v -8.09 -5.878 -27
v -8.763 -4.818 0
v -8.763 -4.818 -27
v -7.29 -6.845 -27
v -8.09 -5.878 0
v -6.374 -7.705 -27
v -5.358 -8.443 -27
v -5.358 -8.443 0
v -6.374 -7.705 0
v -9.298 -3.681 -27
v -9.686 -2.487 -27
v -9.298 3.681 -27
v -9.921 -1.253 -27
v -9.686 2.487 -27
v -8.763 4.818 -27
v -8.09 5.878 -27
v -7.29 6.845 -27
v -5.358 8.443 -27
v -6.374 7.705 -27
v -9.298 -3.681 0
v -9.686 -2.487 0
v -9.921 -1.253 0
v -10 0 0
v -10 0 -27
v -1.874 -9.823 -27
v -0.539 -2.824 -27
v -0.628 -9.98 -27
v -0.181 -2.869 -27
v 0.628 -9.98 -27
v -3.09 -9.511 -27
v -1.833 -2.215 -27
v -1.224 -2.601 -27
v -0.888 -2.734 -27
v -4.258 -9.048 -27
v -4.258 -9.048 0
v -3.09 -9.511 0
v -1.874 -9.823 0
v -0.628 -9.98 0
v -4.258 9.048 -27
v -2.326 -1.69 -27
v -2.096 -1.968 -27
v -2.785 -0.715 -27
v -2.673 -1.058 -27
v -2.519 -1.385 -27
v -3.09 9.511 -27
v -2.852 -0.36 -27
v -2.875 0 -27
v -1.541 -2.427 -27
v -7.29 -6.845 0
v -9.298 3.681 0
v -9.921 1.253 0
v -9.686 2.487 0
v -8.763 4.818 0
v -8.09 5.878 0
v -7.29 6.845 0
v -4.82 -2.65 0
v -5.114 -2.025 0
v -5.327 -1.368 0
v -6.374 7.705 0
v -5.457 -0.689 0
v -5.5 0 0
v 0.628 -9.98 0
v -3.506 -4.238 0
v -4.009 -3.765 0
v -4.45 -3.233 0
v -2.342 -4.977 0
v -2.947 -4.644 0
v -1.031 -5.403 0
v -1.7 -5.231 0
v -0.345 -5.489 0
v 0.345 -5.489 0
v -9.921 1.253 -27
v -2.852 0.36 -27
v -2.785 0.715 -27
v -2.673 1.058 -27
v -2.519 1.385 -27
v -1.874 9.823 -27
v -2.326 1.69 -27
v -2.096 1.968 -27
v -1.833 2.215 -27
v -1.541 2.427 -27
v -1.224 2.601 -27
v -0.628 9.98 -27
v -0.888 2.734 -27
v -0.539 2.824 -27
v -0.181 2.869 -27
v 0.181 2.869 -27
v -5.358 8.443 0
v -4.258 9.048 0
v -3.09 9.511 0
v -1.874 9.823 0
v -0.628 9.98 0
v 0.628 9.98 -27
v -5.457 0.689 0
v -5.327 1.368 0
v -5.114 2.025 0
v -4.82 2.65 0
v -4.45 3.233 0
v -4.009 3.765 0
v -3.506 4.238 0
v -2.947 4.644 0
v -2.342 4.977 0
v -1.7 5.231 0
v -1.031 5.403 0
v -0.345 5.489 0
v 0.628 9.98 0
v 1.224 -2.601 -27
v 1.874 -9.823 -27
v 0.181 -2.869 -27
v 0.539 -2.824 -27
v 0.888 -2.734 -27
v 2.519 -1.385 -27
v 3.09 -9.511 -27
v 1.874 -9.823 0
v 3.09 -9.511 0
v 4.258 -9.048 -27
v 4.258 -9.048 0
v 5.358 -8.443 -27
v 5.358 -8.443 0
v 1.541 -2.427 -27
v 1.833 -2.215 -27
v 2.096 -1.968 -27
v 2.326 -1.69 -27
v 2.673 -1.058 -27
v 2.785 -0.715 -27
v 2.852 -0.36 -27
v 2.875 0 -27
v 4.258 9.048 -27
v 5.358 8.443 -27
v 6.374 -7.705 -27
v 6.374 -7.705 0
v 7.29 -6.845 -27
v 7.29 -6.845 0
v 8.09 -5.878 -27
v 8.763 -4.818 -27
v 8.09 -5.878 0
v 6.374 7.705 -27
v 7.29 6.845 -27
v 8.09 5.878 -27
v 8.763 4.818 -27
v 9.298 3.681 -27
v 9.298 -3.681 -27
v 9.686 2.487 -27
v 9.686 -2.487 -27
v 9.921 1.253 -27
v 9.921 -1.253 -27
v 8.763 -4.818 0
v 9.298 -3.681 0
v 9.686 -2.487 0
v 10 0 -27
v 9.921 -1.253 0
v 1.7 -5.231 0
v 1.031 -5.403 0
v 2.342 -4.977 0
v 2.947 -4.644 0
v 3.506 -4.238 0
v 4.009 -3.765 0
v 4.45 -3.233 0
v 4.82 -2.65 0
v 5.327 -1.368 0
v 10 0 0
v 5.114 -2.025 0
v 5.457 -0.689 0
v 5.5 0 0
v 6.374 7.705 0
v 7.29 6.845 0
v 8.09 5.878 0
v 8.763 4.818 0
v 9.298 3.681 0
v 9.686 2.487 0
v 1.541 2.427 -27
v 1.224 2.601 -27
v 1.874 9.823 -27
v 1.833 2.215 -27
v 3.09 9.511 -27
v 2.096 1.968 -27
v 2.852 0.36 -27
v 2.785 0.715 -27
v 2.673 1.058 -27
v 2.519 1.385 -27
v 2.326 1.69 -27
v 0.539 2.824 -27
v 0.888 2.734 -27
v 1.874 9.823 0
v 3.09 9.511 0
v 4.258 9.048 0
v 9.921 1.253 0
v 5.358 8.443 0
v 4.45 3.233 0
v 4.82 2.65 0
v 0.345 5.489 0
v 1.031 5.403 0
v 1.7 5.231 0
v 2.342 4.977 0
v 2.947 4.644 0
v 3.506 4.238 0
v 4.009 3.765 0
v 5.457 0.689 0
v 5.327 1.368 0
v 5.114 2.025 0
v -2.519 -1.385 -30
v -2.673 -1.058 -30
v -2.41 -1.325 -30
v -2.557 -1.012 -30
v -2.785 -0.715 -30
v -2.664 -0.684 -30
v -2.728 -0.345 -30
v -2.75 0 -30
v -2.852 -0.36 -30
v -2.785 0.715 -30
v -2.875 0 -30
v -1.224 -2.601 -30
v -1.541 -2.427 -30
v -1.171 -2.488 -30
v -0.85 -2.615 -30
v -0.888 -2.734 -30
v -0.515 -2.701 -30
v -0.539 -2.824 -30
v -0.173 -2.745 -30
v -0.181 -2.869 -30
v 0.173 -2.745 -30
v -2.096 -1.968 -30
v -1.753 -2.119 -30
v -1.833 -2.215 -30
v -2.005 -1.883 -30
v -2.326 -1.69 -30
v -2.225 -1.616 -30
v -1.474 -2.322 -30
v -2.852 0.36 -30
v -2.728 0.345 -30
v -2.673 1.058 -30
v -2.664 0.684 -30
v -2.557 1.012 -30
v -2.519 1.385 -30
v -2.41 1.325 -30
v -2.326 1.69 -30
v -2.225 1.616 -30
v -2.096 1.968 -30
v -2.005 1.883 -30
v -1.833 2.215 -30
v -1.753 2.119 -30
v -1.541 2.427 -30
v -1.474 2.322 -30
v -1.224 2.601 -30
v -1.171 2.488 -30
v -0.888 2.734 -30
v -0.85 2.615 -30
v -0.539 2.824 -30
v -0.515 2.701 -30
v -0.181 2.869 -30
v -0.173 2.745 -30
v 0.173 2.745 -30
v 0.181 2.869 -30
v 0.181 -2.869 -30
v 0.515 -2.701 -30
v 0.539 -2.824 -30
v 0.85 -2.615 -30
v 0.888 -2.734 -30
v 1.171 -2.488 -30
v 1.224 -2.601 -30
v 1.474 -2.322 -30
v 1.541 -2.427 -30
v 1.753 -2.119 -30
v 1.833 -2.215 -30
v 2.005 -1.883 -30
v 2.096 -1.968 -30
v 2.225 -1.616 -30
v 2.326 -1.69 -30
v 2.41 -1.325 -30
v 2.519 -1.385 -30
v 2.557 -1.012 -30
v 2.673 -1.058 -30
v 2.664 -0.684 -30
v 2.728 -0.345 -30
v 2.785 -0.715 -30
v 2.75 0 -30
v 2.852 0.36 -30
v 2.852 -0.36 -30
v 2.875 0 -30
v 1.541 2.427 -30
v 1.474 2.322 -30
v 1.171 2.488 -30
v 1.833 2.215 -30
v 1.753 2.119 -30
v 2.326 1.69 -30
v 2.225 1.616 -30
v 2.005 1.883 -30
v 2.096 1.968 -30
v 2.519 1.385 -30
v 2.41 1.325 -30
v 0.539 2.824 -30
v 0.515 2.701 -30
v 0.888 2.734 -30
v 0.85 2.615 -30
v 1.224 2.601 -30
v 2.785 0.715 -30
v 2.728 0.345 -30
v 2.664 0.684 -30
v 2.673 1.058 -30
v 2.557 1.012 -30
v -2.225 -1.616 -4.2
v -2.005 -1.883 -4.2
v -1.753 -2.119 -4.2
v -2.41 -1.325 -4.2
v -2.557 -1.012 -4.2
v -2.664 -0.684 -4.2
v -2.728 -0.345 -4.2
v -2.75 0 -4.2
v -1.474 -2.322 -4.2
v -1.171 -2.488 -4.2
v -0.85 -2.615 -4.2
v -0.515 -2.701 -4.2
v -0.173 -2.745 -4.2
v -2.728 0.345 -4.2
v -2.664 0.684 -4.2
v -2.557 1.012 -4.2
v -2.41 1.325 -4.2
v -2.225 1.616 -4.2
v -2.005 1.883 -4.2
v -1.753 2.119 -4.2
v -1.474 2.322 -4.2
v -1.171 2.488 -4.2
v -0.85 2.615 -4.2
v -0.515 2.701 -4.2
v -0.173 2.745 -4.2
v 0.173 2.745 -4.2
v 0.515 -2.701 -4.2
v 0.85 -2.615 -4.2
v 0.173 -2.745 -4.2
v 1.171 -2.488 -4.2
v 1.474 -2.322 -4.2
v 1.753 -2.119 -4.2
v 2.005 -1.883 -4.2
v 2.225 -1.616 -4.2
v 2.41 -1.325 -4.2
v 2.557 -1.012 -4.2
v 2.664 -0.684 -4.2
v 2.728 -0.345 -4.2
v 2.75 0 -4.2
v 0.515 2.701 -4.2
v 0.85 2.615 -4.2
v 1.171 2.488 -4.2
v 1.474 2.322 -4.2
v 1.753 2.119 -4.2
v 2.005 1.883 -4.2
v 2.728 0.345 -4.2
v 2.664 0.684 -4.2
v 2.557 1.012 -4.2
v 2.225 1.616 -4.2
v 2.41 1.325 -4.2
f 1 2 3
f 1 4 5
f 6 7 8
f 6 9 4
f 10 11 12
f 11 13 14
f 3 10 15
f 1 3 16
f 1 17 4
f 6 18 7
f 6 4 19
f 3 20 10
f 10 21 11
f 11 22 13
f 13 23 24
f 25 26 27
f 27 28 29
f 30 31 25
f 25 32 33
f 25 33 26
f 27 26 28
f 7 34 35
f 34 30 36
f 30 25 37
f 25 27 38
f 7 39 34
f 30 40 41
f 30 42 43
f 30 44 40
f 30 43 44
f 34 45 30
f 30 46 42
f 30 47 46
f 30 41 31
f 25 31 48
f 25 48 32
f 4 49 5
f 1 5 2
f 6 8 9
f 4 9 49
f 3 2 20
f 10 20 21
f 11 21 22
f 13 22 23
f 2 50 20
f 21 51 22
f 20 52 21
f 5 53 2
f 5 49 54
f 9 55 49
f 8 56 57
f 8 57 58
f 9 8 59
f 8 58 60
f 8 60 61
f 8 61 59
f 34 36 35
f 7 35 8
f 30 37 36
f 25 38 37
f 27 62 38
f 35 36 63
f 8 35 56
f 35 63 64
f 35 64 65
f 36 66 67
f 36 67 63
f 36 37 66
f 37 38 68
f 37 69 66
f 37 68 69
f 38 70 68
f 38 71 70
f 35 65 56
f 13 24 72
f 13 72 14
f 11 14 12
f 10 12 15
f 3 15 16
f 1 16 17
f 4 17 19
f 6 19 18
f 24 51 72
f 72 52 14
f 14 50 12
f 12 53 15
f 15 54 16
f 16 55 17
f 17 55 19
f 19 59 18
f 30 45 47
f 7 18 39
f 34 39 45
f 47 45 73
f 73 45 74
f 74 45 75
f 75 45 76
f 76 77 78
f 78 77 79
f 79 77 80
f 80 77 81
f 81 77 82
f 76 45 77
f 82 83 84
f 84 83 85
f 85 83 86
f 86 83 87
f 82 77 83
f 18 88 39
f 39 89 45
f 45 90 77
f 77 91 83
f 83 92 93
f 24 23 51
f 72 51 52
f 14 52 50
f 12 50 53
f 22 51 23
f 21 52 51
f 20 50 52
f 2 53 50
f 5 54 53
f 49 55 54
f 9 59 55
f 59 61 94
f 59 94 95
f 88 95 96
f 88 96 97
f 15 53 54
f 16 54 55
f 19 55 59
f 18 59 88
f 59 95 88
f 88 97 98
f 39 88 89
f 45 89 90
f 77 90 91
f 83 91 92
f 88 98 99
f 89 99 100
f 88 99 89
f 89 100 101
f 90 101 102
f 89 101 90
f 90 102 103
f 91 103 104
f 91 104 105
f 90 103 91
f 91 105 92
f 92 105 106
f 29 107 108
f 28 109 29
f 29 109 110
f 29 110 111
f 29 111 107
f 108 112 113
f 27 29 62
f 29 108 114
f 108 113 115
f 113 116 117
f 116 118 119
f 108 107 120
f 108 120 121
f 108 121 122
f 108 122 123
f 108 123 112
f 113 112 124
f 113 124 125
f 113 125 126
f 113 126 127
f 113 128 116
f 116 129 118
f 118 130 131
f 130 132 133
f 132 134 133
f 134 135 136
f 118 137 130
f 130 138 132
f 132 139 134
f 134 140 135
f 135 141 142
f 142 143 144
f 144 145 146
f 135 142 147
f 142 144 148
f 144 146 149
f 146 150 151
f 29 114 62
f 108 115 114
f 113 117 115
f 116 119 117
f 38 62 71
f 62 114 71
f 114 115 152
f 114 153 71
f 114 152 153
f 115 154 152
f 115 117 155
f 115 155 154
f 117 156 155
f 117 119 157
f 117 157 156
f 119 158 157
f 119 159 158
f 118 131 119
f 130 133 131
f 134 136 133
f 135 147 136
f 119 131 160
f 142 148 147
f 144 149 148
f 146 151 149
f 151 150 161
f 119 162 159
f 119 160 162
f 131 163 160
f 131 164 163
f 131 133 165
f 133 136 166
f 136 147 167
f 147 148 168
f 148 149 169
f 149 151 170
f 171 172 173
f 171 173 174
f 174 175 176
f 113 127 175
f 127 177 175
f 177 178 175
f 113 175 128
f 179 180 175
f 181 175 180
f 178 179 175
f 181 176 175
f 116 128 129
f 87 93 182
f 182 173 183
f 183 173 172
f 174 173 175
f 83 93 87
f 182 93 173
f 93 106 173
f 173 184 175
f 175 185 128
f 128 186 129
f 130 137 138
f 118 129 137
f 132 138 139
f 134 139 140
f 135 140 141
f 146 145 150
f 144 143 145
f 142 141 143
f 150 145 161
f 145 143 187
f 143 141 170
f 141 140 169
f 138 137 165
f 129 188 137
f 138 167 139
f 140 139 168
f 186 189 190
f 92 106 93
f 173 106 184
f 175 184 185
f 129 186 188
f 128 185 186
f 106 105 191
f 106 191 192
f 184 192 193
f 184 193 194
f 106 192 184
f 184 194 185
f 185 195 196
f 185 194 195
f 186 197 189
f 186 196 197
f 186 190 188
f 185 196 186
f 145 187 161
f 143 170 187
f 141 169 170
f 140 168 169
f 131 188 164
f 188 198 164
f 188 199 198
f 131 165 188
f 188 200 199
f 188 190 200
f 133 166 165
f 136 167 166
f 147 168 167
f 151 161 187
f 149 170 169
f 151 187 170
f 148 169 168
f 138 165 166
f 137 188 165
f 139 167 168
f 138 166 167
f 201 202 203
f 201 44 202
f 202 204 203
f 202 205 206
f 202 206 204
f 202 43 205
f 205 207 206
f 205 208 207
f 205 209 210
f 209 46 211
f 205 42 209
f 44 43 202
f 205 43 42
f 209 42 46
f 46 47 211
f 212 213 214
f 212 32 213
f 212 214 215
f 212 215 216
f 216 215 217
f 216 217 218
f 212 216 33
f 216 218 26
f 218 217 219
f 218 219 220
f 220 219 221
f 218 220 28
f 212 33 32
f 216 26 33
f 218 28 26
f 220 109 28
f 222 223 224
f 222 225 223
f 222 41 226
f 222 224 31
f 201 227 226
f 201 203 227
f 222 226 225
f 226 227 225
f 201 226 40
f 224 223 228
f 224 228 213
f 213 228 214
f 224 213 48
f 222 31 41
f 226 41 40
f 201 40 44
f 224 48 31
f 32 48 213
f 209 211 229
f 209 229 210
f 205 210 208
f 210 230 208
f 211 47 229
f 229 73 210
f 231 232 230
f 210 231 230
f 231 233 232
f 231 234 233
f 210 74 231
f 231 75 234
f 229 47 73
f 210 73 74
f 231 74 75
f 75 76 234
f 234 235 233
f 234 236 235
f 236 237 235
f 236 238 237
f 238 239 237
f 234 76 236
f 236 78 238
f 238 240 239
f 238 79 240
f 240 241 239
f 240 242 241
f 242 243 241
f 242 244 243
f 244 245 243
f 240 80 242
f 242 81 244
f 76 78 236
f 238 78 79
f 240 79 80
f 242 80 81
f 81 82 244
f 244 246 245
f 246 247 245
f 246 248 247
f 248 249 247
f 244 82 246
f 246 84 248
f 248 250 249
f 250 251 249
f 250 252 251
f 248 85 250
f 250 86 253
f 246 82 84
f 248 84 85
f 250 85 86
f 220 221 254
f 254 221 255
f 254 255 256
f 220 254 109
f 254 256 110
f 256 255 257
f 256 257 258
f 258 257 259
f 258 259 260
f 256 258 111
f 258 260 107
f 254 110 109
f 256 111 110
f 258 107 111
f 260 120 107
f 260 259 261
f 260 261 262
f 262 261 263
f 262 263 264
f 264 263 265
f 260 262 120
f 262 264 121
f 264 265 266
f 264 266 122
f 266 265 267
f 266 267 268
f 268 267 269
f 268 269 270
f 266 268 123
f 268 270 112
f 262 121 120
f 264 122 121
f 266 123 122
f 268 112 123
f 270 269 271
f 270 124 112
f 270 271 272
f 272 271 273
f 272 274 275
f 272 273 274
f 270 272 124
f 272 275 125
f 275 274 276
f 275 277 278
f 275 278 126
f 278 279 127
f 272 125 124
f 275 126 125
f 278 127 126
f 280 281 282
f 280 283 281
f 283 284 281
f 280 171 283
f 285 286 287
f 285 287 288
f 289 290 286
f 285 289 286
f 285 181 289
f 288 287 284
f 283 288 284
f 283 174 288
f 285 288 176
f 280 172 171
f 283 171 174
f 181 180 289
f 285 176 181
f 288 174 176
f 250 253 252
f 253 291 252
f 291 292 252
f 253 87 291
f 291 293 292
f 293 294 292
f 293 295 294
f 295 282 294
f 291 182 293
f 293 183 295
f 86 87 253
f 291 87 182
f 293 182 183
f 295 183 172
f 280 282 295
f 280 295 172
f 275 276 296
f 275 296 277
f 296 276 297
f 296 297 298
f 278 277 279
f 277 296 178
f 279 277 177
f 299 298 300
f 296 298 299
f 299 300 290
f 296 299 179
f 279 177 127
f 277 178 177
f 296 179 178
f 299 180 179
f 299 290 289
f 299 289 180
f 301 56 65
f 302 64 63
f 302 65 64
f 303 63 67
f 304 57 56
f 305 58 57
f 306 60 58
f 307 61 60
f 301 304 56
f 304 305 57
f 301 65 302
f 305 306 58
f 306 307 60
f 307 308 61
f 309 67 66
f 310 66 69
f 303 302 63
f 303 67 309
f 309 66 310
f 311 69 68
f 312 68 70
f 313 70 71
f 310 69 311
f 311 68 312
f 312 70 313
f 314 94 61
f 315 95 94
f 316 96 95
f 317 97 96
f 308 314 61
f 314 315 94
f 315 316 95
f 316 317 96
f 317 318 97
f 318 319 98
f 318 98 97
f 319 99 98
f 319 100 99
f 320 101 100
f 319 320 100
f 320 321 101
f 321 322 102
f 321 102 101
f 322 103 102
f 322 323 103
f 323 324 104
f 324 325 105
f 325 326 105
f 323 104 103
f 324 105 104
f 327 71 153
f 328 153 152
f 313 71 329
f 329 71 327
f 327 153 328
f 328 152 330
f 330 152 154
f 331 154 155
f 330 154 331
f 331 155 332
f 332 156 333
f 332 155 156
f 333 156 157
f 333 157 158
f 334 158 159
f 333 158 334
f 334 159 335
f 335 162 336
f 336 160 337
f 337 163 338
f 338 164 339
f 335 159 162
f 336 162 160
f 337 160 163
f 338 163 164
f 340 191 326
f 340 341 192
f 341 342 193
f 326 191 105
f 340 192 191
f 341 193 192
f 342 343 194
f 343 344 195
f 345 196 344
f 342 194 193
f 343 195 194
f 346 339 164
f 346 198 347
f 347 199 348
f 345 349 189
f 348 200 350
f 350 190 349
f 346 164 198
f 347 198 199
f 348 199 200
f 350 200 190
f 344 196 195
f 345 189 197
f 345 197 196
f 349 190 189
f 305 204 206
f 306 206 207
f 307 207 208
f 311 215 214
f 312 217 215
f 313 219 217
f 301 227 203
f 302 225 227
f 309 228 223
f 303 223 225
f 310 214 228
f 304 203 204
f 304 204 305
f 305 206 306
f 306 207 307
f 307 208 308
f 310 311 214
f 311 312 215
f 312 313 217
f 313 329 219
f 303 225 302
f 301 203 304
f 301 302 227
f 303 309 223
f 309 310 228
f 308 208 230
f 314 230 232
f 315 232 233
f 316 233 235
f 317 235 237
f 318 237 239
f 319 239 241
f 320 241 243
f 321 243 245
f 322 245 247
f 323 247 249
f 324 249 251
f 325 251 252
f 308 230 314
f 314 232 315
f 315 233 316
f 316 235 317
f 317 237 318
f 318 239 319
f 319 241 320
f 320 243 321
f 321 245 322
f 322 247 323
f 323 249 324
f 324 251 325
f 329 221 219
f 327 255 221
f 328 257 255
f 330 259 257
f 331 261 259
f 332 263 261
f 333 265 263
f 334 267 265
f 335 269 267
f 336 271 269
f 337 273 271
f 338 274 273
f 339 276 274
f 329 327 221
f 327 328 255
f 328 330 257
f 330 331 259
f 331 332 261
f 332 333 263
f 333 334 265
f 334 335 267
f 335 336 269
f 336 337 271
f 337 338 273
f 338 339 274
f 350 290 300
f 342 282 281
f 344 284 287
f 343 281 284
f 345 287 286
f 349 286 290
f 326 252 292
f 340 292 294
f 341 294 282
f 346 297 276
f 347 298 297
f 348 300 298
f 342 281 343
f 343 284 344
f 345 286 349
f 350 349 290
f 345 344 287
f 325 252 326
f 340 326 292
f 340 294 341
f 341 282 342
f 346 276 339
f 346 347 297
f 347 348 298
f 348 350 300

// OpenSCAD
$fn = 50;

difference() {
	union() {
		translate(v = [0, 0, -27.0]) {
			cylinder(h = 27, r = 10.0);
		}
		#translate(v = [0, 0, -30.0]) {
			cylinder(h = 30, r = 2.875);
		}
	}
	union() {
		translate(v = [0, 0, 0]) {
			rotate(a = [0, 0, 0]) {
				difference() {
					union() {
						translate(v = [0, 0, -30.0]) {
							cylinder(h = 30, r = 2.25);
						}
						translate(v = [0, 0, -4.2]) {
							cylinder(h = 4.2, r1 = 2.75, r2 = 5.5);
						}
						translate(v = [0, 0, -30.0]) {
							cylinder(h = 30, r = 2.75);
						}
						translate(v = [0, 0, -30.0]) {
							cylinder(h = 30, r = 2.25);
						}
					}
					union();
				}
			}
		}
	}
}
